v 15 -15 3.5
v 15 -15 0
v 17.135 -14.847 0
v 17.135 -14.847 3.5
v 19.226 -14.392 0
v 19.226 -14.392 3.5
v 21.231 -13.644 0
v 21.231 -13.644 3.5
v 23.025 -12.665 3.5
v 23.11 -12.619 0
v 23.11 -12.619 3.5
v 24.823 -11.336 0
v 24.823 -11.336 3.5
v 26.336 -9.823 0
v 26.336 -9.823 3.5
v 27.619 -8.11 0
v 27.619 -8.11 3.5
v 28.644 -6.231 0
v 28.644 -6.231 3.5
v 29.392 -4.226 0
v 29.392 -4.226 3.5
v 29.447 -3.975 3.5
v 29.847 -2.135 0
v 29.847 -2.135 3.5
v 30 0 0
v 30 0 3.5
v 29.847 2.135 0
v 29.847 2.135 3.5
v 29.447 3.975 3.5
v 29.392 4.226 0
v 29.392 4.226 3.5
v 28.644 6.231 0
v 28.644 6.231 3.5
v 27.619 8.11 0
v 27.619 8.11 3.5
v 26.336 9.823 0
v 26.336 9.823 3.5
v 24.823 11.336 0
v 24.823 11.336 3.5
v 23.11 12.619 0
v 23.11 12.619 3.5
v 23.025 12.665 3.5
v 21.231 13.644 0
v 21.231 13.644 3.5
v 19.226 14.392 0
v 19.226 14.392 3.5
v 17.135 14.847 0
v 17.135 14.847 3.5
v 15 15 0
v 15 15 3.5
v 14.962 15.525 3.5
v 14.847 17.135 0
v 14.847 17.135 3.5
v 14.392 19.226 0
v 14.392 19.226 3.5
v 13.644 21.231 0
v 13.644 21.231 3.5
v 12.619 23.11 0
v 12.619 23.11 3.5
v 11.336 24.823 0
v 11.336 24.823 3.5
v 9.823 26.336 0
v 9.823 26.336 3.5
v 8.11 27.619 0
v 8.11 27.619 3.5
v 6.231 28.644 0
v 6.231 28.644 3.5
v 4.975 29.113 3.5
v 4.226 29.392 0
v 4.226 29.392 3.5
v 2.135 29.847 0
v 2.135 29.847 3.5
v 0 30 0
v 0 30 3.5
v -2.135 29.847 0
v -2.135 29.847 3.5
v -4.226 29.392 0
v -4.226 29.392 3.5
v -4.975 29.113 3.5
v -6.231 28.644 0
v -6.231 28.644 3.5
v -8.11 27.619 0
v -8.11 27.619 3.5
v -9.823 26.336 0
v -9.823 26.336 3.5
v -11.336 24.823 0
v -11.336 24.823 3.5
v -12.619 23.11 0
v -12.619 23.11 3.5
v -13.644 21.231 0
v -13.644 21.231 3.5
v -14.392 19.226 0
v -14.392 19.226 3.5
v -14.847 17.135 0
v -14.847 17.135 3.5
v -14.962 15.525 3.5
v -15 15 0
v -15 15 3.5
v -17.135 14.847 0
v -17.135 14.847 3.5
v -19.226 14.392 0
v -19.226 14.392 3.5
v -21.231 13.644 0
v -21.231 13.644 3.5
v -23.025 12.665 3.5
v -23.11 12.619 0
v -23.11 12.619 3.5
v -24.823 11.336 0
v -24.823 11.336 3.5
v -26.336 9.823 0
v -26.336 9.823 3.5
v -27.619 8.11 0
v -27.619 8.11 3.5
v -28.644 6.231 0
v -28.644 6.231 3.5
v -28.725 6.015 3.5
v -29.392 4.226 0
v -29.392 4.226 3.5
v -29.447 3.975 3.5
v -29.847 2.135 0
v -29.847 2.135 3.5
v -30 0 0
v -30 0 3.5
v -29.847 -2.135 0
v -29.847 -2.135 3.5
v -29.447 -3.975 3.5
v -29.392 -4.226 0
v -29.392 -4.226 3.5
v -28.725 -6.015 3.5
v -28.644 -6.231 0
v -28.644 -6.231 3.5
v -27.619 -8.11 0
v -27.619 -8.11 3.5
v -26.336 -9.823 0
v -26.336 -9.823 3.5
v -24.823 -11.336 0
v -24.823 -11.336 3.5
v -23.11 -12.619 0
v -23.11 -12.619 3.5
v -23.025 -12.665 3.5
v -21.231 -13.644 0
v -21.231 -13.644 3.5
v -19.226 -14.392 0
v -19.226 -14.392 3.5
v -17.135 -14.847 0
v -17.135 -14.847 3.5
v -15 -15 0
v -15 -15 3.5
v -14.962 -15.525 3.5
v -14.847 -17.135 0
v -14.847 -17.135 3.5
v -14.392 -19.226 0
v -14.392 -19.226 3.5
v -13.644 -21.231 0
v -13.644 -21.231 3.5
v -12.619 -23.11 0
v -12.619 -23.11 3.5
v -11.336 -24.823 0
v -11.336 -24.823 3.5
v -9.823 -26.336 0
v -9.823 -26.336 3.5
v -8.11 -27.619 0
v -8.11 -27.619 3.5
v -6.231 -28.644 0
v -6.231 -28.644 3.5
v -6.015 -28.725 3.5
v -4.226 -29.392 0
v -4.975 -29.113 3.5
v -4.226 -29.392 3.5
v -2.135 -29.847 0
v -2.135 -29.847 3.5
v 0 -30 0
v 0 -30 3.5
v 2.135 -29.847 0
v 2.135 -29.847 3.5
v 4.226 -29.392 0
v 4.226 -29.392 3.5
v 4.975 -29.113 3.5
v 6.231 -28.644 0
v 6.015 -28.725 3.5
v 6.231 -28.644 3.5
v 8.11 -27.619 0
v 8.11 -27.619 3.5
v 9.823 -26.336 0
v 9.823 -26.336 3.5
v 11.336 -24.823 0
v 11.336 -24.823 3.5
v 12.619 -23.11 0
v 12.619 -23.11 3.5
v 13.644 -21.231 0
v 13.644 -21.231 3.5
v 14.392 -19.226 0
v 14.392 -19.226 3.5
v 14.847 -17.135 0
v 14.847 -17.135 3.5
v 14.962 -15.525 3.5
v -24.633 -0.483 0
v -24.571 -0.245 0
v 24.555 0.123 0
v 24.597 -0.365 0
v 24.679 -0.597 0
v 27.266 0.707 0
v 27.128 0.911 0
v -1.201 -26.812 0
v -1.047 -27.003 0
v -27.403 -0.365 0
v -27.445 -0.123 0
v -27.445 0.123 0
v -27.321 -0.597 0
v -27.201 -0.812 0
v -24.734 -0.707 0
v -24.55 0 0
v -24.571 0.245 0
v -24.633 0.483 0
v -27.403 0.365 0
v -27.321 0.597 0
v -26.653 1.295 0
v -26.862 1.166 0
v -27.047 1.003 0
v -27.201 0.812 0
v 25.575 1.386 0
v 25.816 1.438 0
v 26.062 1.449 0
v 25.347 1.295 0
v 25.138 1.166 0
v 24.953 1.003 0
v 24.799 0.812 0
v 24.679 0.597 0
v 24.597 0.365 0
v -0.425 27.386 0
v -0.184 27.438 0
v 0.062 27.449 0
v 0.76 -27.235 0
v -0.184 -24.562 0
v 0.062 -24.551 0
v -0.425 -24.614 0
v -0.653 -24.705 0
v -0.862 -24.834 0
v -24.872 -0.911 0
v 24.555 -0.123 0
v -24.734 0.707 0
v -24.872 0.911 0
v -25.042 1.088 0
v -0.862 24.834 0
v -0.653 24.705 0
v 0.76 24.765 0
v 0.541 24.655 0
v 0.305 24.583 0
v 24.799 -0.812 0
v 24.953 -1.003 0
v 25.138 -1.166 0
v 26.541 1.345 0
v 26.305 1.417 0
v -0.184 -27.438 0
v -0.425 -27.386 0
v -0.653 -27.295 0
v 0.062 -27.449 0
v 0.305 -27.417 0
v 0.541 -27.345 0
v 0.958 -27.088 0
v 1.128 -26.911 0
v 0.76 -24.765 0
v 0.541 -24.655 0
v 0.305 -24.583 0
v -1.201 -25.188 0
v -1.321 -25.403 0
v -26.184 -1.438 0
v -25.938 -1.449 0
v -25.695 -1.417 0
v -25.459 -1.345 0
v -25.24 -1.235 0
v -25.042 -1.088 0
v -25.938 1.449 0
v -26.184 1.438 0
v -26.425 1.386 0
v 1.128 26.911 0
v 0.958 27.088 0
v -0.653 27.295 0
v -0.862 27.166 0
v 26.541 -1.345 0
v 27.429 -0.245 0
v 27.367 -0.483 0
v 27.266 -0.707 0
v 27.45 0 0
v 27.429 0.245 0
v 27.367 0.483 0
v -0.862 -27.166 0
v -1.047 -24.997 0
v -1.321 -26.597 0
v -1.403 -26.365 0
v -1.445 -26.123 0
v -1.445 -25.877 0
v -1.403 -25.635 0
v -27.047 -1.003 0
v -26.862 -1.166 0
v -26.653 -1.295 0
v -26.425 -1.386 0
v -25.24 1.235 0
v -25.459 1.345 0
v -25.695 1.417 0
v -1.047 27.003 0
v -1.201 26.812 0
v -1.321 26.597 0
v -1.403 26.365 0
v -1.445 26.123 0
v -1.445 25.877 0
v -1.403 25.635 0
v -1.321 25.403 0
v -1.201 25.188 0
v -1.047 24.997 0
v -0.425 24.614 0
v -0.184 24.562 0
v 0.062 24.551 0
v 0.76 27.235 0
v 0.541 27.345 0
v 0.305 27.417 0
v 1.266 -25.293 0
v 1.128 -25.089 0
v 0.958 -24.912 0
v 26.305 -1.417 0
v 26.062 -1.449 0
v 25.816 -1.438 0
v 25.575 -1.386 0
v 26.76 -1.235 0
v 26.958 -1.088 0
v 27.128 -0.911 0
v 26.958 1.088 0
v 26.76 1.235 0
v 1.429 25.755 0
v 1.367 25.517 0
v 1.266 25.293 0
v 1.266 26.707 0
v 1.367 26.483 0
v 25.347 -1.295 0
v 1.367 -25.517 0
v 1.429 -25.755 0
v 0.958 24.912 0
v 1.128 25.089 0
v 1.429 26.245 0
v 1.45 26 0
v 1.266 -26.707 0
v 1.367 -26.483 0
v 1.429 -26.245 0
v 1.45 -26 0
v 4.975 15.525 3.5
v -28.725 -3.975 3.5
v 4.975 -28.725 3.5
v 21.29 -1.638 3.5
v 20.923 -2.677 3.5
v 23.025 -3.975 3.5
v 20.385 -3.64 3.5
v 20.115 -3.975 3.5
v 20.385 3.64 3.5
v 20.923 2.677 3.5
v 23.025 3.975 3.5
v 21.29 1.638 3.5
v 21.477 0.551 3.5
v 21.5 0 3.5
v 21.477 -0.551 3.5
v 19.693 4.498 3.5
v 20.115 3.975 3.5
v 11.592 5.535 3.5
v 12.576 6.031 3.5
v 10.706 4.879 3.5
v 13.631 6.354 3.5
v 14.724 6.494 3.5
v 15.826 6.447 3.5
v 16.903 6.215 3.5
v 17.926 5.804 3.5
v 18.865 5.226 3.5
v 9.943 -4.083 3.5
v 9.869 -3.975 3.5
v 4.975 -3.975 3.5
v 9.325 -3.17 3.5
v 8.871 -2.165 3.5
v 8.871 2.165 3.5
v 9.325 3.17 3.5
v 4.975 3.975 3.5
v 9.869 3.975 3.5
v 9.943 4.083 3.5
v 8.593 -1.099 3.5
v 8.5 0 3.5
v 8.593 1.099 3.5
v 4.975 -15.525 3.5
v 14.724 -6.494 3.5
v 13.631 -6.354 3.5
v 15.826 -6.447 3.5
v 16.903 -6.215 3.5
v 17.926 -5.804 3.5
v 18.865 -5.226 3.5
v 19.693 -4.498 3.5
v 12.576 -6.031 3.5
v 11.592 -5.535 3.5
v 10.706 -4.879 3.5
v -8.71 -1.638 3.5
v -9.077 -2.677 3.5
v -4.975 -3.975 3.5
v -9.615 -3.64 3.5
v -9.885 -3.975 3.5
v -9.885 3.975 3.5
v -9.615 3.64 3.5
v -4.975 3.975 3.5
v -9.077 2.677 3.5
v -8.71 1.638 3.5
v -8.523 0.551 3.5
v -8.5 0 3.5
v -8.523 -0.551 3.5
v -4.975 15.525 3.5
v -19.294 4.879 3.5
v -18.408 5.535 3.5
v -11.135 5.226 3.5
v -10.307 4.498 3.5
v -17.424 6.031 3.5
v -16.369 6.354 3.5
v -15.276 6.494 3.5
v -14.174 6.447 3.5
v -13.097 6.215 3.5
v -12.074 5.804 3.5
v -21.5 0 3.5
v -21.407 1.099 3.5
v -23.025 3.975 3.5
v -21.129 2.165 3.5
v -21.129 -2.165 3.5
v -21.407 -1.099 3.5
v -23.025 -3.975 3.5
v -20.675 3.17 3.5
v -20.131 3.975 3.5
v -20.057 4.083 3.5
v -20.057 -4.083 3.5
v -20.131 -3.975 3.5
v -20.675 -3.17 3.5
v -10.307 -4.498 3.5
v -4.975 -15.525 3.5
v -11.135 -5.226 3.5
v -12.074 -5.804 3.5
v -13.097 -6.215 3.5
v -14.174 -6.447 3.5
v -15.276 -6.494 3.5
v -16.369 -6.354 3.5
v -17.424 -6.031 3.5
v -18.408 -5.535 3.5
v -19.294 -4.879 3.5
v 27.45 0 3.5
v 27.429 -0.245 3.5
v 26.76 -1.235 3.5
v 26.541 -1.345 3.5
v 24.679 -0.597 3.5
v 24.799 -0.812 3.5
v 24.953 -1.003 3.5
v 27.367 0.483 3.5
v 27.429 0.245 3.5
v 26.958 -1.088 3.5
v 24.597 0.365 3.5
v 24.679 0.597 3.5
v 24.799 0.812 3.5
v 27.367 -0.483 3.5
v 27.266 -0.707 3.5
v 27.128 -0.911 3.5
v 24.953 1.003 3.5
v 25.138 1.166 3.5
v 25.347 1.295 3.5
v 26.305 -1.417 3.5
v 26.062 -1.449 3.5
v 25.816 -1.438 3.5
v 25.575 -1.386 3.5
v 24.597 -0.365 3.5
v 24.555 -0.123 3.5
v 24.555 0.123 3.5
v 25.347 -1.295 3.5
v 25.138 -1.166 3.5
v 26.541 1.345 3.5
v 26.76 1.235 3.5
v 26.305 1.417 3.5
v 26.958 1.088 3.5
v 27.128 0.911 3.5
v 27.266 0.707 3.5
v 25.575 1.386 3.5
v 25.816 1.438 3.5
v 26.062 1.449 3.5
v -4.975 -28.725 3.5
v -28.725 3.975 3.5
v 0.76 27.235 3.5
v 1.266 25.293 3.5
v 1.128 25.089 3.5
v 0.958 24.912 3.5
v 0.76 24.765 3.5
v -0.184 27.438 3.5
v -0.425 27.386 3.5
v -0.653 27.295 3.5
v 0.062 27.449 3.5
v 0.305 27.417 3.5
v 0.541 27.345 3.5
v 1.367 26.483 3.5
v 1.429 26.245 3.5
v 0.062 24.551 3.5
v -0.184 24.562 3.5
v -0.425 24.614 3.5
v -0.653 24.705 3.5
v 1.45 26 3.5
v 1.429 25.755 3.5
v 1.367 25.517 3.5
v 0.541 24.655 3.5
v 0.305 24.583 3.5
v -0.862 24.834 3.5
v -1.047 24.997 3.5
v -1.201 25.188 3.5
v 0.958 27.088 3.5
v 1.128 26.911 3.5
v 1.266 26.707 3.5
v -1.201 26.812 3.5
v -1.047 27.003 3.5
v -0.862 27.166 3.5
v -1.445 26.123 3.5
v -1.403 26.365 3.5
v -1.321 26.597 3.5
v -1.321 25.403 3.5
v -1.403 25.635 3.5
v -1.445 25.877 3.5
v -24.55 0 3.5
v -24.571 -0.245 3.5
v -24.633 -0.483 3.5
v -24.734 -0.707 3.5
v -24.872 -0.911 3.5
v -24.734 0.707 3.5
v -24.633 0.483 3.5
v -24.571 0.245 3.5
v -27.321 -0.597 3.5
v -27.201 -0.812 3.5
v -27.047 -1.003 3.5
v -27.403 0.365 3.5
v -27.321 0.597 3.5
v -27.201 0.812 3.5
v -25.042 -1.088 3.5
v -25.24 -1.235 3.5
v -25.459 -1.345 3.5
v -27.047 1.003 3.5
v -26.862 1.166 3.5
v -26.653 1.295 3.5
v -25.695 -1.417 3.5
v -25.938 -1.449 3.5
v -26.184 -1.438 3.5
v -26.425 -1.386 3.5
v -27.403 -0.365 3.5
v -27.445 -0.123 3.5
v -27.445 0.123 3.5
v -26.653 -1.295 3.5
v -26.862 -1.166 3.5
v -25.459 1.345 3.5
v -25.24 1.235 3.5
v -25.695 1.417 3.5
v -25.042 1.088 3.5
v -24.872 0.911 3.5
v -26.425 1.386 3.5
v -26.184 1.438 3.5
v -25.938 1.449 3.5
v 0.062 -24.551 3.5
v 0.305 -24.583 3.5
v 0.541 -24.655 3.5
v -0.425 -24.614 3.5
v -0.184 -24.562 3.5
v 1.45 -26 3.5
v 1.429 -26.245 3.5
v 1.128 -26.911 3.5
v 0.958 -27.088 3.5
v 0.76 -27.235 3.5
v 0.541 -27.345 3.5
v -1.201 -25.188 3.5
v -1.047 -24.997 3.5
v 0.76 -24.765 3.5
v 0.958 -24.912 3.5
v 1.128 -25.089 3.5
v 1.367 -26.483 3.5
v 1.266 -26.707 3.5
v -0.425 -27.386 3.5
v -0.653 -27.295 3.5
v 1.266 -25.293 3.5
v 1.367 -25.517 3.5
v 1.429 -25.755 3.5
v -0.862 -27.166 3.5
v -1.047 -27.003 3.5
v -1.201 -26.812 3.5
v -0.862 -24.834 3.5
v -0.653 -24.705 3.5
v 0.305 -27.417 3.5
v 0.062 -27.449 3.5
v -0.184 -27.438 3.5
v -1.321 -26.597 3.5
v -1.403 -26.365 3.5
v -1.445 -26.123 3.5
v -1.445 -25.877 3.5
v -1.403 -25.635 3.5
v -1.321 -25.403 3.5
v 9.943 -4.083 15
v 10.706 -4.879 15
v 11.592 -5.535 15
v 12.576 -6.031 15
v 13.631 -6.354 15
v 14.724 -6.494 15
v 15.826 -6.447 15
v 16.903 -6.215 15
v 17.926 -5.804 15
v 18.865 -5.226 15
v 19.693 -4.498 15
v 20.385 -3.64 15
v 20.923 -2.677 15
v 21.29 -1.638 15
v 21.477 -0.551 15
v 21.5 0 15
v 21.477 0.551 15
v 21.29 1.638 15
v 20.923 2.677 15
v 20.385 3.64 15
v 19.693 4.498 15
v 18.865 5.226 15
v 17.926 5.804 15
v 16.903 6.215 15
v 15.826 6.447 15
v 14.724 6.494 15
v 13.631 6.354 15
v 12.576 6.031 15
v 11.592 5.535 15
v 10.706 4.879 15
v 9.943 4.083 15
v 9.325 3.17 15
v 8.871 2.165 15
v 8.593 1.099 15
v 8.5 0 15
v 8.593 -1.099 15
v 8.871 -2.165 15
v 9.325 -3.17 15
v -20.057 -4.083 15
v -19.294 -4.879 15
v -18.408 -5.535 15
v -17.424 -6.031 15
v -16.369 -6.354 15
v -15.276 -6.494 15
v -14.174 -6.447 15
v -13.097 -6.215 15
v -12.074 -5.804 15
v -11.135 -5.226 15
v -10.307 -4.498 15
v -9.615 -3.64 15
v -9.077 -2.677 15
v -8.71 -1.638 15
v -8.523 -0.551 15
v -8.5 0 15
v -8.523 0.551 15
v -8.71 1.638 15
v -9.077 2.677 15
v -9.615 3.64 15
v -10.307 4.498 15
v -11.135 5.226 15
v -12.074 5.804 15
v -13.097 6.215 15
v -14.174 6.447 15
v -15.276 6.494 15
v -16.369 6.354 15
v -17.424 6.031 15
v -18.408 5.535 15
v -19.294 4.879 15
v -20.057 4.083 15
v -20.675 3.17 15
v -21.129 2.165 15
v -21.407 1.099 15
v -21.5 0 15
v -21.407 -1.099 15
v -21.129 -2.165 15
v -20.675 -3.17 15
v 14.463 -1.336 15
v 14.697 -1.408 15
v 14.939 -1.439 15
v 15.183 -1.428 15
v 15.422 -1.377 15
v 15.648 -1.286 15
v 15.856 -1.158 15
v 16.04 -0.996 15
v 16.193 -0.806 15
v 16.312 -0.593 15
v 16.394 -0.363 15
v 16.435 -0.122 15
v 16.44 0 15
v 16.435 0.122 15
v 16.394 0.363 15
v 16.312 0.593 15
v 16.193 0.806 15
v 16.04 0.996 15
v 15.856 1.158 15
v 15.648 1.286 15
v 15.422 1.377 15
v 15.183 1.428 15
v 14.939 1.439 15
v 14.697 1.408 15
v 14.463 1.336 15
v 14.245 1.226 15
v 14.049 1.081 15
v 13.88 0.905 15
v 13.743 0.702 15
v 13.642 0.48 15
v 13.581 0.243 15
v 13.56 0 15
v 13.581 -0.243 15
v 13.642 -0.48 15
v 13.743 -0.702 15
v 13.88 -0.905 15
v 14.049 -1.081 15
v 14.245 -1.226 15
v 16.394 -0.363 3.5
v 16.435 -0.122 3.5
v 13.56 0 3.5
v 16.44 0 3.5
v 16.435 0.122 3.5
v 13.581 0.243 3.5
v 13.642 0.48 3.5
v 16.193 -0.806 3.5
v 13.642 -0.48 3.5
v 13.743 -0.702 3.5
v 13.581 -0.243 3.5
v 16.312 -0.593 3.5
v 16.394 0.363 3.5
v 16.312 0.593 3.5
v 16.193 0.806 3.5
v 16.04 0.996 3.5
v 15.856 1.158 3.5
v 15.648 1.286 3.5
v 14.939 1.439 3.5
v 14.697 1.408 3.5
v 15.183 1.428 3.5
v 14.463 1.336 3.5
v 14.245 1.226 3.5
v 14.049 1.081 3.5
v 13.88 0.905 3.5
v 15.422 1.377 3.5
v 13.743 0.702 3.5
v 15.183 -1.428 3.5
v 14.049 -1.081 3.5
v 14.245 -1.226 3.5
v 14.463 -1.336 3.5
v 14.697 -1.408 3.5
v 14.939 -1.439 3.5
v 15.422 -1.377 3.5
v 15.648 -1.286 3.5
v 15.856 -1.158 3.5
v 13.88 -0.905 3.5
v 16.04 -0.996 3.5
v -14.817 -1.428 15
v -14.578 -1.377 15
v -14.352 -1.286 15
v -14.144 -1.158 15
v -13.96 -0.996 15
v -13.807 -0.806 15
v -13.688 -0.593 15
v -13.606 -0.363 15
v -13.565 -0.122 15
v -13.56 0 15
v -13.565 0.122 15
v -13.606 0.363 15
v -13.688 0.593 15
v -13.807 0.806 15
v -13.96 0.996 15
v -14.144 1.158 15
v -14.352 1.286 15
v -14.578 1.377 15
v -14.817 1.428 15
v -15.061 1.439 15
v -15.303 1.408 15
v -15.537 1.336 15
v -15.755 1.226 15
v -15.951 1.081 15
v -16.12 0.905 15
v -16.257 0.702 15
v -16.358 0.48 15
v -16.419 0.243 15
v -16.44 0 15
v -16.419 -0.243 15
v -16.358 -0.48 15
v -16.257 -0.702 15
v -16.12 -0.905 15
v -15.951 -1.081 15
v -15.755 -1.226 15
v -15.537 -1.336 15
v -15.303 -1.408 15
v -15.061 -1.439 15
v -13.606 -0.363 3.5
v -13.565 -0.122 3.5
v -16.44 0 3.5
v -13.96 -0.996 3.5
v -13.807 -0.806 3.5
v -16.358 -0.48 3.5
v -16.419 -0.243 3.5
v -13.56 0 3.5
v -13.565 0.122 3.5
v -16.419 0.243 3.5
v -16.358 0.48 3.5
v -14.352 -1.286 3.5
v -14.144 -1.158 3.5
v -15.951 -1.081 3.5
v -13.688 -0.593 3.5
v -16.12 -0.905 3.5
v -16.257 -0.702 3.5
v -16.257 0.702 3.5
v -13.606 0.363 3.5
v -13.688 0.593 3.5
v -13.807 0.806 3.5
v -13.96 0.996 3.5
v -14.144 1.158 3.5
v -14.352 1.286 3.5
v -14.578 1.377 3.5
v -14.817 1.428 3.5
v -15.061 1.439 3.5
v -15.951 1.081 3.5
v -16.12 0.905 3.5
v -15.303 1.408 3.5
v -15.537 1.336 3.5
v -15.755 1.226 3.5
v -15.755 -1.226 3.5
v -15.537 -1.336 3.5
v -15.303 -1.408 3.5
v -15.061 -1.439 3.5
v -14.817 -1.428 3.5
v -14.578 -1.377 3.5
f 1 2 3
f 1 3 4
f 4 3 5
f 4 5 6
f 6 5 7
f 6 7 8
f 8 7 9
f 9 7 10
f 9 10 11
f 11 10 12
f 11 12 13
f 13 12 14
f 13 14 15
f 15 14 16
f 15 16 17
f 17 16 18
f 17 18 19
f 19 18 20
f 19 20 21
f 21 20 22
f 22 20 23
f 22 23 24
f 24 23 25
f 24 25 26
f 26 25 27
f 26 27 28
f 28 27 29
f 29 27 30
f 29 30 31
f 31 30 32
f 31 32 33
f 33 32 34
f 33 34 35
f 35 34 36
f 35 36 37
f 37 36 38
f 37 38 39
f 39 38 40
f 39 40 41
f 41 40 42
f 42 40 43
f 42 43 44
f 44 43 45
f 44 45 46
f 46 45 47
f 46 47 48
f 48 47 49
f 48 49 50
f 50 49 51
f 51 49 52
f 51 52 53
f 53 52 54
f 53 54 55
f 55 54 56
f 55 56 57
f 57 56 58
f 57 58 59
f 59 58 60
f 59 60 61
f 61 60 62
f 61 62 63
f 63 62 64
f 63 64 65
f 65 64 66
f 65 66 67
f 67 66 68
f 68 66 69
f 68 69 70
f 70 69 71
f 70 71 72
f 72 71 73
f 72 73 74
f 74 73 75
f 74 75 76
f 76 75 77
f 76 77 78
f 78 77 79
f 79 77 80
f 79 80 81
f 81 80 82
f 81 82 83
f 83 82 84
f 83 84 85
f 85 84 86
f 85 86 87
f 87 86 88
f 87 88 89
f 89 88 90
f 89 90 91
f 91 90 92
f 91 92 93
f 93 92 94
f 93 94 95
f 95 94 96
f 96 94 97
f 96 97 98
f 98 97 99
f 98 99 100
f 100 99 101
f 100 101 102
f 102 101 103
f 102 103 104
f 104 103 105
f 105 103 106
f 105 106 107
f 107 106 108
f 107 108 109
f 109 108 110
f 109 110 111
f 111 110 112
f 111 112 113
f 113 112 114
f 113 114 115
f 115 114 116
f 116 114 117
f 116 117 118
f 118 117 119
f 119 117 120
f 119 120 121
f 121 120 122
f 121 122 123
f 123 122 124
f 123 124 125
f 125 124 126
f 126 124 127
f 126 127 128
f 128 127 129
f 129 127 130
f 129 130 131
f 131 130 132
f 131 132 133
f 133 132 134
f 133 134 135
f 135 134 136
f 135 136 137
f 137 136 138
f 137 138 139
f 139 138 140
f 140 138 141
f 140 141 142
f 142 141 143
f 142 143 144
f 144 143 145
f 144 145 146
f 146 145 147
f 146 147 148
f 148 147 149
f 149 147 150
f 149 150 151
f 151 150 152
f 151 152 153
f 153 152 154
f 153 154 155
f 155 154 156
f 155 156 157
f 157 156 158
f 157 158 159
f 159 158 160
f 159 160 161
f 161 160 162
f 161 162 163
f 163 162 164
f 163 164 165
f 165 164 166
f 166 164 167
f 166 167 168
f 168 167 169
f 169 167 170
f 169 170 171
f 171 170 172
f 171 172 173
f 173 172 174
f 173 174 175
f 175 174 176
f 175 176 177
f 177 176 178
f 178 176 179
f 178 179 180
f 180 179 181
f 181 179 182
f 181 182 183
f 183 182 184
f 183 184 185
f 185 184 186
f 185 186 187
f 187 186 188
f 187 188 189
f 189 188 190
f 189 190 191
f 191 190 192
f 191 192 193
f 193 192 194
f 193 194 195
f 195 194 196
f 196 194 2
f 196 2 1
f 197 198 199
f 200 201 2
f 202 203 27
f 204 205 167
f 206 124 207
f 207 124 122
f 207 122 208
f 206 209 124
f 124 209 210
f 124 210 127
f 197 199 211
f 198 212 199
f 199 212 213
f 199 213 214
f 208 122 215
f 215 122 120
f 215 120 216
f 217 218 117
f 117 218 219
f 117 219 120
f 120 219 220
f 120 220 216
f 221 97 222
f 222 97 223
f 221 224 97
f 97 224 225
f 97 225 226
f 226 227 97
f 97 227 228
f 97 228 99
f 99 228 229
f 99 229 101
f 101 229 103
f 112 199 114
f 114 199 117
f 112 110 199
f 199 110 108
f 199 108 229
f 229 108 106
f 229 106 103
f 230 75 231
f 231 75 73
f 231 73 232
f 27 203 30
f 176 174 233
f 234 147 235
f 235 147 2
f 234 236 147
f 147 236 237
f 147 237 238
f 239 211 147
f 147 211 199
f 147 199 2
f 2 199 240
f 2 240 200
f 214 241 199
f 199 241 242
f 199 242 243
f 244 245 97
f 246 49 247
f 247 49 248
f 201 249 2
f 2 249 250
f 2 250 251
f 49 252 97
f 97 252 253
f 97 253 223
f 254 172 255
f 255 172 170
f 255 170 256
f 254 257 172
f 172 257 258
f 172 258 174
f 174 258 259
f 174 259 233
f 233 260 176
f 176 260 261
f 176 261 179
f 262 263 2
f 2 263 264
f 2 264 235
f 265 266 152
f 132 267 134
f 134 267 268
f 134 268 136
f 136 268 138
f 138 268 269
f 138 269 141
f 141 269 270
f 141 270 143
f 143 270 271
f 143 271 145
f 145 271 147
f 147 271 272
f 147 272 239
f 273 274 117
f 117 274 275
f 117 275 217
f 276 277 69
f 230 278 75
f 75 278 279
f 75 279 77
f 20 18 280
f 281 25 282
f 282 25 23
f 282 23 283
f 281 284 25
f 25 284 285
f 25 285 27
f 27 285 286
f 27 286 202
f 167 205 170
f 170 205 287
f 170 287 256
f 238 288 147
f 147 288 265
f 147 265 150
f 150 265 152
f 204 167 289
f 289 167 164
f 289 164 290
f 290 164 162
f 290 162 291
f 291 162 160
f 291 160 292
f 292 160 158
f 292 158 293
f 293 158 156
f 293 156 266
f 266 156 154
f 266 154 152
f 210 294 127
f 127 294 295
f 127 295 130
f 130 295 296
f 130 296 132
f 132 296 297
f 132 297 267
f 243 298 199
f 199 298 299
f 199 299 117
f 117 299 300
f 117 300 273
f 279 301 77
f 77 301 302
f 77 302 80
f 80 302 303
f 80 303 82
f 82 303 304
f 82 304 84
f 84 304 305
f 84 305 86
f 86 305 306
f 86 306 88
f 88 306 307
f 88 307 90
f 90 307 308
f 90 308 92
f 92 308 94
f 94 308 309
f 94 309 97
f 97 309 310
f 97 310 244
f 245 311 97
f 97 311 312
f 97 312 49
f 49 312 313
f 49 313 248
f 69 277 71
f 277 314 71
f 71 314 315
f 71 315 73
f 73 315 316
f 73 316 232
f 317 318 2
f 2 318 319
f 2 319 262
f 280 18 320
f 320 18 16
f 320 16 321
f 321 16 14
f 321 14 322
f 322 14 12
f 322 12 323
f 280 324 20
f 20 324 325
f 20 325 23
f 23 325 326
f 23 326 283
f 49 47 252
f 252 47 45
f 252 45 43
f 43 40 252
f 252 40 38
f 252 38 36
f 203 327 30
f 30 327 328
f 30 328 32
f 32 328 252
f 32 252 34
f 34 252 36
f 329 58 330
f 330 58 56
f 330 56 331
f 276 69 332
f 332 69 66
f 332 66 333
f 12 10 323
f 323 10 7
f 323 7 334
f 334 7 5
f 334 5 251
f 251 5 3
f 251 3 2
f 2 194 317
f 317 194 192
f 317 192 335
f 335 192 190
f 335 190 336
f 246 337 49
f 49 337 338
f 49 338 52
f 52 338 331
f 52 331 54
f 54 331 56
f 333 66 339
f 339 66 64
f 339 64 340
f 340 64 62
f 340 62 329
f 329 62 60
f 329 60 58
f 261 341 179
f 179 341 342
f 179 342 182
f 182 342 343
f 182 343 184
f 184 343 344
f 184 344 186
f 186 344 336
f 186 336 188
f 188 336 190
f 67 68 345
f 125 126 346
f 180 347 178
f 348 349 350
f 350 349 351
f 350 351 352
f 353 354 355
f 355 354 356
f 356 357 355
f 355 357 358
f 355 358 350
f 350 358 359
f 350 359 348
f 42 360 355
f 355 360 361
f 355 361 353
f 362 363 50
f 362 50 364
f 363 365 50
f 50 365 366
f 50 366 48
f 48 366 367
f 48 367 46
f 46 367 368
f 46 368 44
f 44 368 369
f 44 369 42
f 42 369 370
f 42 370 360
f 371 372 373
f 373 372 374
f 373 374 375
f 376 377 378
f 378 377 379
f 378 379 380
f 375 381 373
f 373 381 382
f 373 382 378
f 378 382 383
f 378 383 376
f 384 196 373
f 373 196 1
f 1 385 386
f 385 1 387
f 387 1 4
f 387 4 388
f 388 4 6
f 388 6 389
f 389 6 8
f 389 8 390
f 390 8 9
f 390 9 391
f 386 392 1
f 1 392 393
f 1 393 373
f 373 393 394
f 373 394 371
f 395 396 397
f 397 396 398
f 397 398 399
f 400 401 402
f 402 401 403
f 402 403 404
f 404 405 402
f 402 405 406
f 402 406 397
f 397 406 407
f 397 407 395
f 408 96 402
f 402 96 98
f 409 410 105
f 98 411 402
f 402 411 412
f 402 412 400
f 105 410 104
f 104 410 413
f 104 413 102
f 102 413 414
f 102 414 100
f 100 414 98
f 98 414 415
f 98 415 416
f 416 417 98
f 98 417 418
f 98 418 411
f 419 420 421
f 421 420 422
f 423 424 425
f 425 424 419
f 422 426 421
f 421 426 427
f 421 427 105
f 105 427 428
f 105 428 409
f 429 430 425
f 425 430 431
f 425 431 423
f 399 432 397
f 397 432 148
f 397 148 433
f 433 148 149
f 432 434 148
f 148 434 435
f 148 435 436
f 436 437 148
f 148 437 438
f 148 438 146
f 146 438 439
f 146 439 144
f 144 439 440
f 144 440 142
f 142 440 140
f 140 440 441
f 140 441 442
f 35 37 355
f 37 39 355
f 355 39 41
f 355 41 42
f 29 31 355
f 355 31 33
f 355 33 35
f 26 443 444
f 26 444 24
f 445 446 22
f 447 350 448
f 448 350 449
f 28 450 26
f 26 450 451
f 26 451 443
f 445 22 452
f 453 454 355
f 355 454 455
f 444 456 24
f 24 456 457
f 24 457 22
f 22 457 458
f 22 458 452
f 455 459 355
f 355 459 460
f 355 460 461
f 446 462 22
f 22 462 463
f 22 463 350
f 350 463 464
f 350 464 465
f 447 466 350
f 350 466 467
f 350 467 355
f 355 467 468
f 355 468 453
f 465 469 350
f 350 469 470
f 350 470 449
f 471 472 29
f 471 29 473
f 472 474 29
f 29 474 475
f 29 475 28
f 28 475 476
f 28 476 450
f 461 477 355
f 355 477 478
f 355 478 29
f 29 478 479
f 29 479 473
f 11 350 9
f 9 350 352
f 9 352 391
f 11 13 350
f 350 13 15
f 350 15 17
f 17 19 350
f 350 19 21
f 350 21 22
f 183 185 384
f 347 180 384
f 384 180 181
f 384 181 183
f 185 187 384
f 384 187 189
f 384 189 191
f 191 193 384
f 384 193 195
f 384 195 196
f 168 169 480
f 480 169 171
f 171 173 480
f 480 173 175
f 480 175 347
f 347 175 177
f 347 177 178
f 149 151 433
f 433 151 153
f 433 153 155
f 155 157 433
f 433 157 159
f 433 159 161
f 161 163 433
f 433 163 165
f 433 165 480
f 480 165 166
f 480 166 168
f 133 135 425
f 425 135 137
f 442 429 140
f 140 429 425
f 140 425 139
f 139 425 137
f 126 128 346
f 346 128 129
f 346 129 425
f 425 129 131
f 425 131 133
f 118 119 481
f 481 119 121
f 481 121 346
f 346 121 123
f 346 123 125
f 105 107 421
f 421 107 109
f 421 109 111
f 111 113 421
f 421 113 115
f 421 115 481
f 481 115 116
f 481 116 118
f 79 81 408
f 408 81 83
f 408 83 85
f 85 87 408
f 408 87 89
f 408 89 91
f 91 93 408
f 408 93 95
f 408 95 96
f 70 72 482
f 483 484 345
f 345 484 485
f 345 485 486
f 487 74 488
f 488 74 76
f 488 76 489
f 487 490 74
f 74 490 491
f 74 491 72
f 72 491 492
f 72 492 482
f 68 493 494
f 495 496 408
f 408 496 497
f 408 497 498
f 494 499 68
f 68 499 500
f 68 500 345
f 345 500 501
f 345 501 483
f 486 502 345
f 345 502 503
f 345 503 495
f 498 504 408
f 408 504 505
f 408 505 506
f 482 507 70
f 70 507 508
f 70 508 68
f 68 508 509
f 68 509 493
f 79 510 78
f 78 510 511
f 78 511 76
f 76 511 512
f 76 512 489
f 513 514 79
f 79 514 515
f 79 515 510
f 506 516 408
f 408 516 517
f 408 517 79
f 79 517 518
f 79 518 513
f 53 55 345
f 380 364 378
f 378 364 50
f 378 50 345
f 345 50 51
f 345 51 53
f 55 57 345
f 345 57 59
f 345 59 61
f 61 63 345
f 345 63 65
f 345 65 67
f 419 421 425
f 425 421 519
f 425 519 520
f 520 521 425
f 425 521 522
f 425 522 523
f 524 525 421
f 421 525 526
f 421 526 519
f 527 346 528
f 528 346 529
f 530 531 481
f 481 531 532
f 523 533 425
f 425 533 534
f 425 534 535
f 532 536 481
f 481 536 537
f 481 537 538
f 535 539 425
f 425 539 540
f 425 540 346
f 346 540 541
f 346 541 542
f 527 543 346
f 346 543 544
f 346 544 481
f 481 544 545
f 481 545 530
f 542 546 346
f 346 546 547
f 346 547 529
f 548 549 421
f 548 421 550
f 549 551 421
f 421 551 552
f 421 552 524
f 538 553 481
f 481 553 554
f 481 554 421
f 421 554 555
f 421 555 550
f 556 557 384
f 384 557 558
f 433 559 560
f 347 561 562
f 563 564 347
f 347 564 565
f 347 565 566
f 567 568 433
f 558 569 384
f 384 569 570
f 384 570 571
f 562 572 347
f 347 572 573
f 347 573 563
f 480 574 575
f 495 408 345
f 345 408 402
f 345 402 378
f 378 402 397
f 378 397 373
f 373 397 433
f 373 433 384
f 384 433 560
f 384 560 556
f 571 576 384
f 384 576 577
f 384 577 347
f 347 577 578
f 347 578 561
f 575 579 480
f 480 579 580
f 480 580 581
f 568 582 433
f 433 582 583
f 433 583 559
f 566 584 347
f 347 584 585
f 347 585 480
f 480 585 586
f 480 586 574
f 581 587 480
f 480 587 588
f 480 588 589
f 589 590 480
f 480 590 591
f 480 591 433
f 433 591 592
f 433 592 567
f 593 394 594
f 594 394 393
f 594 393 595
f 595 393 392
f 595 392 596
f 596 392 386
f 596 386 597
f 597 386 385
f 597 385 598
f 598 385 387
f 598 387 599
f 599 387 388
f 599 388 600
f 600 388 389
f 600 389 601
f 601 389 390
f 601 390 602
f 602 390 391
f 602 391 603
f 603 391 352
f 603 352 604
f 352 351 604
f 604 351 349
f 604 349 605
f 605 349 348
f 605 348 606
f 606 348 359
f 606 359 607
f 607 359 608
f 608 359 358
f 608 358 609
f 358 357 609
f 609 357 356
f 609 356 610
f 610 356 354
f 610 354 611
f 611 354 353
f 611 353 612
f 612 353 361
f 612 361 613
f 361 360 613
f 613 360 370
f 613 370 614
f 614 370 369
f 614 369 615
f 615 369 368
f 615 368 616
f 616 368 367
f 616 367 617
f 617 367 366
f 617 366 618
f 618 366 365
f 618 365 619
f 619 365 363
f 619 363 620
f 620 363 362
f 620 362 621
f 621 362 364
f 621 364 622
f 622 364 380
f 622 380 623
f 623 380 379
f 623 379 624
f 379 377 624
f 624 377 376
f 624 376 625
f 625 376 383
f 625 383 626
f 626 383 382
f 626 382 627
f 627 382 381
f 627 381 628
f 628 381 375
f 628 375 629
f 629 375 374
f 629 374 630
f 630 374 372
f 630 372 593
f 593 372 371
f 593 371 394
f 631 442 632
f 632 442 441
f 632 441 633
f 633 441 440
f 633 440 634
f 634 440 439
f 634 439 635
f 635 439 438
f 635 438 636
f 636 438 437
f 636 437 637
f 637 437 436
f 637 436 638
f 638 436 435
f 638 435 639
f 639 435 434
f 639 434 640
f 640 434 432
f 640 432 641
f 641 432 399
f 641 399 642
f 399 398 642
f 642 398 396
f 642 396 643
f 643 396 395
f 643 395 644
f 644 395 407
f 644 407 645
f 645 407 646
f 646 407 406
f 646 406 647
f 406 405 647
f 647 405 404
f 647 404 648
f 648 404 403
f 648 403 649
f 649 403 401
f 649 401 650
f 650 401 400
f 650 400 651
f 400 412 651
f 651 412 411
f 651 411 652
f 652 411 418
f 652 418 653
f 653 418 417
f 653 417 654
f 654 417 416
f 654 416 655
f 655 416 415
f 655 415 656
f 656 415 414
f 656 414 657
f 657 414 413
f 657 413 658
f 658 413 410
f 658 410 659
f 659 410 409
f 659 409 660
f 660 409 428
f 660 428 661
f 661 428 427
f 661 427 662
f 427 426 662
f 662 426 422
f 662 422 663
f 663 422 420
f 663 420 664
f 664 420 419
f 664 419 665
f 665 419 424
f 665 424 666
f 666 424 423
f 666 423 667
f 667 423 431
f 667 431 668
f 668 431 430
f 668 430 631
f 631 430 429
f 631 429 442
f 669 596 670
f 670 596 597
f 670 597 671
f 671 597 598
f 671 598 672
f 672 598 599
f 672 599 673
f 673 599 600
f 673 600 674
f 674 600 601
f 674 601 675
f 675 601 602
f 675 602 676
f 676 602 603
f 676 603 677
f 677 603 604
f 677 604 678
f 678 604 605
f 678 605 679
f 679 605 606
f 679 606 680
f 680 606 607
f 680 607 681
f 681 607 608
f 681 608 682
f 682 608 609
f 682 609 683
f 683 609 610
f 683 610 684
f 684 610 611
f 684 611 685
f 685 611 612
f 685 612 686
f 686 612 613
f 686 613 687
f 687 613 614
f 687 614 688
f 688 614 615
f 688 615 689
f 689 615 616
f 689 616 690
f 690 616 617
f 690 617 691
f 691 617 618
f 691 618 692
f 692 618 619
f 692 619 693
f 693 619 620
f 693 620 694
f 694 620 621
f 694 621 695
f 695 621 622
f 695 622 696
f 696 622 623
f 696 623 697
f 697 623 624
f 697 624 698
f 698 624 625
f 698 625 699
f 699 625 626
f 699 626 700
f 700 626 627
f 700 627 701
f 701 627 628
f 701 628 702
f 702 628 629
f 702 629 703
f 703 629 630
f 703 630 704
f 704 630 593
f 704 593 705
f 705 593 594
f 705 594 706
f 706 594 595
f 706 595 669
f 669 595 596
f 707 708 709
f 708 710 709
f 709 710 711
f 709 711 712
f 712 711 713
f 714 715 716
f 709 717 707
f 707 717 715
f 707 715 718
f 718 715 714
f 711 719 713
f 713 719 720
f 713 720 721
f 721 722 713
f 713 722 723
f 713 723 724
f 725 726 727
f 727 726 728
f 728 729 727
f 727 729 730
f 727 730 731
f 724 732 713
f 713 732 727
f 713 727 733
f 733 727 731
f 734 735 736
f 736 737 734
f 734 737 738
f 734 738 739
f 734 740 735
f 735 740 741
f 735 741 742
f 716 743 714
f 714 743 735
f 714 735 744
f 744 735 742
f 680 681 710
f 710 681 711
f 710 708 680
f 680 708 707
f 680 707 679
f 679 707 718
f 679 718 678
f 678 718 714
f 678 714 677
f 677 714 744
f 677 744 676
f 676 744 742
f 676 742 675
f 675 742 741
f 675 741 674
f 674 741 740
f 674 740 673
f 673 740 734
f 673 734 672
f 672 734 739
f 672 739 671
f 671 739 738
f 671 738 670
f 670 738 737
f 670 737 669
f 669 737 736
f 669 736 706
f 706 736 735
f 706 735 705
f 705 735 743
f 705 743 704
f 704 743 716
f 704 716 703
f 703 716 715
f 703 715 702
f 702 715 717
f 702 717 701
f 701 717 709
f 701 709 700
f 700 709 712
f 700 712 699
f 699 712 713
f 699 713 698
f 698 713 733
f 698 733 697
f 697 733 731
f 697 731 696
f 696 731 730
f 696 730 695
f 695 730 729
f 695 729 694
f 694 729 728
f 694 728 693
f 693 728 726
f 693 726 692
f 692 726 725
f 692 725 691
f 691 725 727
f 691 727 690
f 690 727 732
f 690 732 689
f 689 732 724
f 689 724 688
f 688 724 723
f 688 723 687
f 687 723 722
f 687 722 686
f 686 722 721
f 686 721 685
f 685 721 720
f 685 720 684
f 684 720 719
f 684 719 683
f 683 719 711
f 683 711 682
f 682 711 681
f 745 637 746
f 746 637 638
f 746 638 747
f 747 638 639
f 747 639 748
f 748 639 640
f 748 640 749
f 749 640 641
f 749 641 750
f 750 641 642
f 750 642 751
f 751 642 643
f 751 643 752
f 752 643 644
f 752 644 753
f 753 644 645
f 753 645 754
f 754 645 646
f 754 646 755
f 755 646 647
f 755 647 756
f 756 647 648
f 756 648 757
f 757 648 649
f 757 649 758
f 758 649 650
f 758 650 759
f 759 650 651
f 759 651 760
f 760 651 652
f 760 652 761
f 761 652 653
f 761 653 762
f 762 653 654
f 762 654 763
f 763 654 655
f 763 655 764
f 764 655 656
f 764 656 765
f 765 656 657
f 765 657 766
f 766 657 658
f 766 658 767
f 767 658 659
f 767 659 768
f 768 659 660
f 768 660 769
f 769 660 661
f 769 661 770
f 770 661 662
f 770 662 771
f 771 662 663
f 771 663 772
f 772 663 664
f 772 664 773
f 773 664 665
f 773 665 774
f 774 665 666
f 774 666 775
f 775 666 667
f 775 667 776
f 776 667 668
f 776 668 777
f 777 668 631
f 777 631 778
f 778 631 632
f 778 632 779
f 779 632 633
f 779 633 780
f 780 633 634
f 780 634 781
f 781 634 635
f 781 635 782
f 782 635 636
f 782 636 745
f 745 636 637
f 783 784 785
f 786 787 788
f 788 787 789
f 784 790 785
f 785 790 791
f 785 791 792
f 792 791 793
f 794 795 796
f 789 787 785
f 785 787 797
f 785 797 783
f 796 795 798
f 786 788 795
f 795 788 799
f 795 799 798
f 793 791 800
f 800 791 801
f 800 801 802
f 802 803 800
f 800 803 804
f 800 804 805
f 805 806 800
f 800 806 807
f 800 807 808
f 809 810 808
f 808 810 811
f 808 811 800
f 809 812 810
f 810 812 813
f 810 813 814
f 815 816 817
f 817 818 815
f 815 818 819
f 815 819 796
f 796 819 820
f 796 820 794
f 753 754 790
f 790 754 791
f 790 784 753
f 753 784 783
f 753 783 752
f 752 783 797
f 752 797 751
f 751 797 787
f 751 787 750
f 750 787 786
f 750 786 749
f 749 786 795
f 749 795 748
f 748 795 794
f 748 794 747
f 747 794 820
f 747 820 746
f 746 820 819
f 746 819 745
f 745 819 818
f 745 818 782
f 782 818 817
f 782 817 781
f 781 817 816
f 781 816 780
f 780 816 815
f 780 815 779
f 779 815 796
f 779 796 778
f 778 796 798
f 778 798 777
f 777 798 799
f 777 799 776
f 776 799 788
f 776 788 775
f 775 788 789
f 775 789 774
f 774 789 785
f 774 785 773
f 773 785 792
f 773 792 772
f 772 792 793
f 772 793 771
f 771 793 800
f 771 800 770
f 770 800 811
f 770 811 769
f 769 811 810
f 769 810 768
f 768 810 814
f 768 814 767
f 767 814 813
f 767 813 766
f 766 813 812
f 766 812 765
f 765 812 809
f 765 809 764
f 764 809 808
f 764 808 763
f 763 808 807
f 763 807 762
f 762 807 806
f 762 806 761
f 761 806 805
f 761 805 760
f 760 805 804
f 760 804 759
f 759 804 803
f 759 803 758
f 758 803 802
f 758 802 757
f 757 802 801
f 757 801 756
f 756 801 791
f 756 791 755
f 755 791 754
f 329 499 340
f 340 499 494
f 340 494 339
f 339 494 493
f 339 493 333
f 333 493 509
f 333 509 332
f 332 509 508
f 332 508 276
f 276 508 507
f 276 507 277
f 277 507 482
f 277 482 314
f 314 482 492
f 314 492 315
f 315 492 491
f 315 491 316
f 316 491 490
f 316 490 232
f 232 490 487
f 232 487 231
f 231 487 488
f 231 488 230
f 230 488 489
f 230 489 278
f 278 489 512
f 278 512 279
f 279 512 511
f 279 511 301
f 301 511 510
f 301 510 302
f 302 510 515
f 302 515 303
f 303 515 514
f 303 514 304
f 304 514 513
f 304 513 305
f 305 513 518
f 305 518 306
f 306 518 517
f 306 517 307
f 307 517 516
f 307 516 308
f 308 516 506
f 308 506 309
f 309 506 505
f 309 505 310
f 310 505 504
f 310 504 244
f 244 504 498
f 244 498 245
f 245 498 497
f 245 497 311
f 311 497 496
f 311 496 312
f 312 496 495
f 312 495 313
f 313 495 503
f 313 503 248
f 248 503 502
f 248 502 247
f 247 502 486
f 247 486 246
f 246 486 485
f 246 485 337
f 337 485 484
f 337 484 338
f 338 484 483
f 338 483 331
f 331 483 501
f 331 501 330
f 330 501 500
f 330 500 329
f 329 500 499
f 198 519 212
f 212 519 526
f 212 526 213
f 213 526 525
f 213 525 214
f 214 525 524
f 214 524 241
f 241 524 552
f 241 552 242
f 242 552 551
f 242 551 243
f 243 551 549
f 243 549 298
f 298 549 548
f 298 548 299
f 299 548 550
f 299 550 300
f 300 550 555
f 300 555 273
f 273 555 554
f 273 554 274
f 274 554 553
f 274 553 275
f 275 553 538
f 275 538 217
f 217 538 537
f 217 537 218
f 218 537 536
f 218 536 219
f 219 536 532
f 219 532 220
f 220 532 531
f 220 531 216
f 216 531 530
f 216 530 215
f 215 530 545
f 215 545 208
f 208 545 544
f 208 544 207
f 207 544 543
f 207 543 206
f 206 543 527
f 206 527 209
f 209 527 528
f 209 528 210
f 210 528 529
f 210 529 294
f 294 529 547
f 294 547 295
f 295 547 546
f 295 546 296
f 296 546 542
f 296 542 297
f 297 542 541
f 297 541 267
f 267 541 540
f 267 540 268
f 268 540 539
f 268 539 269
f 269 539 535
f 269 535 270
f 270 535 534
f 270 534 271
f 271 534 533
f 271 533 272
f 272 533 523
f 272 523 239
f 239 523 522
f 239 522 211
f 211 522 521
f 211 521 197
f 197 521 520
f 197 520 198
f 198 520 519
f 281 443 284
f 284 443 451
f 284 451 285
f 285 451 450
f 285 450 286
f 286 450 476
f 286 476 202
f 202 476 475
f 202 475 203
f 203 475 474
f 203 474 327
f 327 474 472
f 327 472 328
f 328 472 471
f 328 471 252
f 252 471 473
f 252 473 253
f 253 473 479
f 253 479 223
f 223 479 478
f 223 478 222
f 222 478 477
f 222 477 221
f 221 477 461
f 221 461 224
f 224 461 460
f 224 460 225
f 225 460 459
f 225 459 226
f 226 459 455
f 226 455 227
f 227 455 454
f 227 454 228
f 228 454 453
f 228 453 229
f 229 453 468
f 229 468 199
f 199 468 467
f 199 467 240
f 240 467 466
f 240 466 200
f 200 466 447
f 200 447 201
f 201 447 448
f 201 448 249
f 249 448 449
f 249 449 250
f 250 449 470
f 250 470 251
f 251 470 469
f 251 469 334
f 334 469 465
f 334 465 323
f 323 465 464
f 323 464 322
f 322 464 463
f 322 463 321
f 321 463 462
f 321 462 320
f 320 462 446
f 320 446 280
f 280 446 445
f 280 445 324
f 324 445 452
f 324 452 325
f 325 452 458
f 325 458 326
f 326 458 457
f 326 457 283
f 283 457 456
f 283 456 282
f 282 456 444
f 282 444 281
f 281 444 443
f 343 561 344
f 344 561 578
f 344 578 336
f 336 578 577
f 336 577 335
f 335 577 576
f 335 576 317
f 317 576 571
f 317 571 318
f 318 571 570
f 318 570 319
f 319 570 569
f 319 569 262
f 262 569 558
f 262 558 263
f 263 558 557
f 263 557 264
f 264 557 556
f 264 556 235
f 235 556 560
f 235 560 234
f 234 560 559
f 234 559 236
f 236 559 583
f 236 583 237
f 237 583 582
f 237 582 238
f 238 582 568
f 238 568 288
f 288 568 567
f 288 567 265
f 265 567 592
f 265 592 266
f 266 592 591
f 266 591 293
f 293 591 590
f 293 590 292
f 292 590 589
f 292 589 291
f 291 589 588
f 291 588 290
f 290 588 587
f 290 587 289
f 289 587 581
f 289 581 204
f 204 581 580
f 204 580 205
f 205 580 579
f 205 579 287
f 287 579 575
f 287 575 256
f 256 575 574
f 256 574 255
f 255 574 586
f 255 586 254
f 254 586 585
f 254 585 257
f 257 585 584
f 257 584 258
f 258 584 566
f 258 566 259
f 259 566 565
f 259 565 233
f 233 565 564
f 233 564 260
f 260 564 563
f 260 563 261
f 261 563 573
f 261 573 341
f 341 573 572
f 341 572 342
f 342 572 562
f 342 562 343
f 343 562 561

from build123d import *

# Parameters (mm, degrees)
EXTRUDE_9_DEPTH       = 2
SKETCH_5_R            = 6.5
SKETCH_5_R_2          = 1.44
EXTRUDE_11_DEPTH      = 9.7
EXTRUDE_12_DEPTH      = 3.5
SKETCH_5_4_R          = 6.5
SKETCH_5_4_R_2        = 1.44
EXTRUDE_13_DEPTH      = 10
EXTRUDE_17_DEPTH      = 10
EXTRUDE_17_DEPTH_BACK = 2
SKETCH_5_8_R          = 6.5
SKETCH_5_8_R_2        = 1.44
SKETCH_5_11_R         = 6.5
SKETCH_5_11_R_2       = 1.44
EXTRUDE_18_DEPTH      = 13
EXTRUDE_19_DEPTH      = 3
SKETCH_6_R            = 1.45
CUT_EXTRUDE_1_DEPTH   = 3.5


with BuildPart() as part:
    # 草图2 → 凸台-拉伸9 (new body)
    with BuildSketch(Plane.XY):
        with BuildLine():
            ThreePointArc((15, 15), (0, 30), (-15, 15))
            ThreePointArc((-15, 15), (-30, 0), (-15, -15))
            ThreePointArc((-15, -15), (0, -30), (15, -15))
            ThreePointArc((15, -15), (30, 0), (15, 15))
        make_face()
    extrude(amount=EXTRUDE_9_DEPTH)

    # 草图5 → 凸台-拉伸11 (add)
    # profile 1 of 2: a face of its own
    with BuildSketch(Plane.XY.offset(2)):
        with Locations((-15, 0)):
            Circle(SKETCH_5_R)
        with Locations((-15, 0)):
            Circle(SKETCH_5_R_2, mode=Mode.SUBTRACT)
    # profile 2 of 2: a face of its own
    with BuildSketch(Plane.XY.offset(2)):
        with Locations((15, 0)):
            Circle(SKETCH_5_R)
        with Locations((15, 0)):
            Circle(SKETCH_5_R_2, mode=Mode.SUBTRACT)
    extrude(amount=EXTRUDE_11_DEPTH)

    # 草图2<17> → 凸台-拉伸12 (add)
    with BuildSketch(Plane.XY):
        with BuildLine():
            ThreePointArc((15, 15), (0, 30), (-15, 15))
            ThreePointArc((-15, 15), (-30, 0), (-15, -15))
            ThreePointArc((-15, -15), (0, -30), (15, -15))
            ThreePointArc((15, -15), (30, 0), (15, 15))
        make_face()
    extrude(amount=EXTRUDE_12_DEPTH)

    # 草图5<4> → 凸台-拉伸13 (add)
    # profile 1 of 2: a face of its own
    with BuildSketch(Plane.XY.offset(2)):
        with Locations((-15, 0)):
            Circle(SKETCH_5_4_R)
        with Locations((-15, 0)):
            Circle(SKETCH_5_4_R_2, mode=Mode.SUBTRACT)
    # profile 2 of 2: a face of its own
    with BuildSketch(Plane.XY.offset(2)):
        with Locations((15, 0)):
            Circle(SKETCH_5_4_R)
        with Locations((15, 0)):
            Circle(SKETCH_5_4_R_2, mode=Mode.SUBTRACT)
    extrude(amount=EXTRUDE_13_DEPTH)

    # 草图5<8> → 凸台-拉伸17 (add, two sides: drawn at the far end of the back side and taken through both)
    # profile 1 of 2: a face of its own
    with BuildSketch(Plane.XY.offset(2).offset(-EXTRUDE_17_DEPTH_BACK)):
        with Locations((-15, 0)):
            Circle(SKETCH_5_8_R)
        with Locations((-15, 0)):
            Circle(SKETCH_5_8_R_2, mode=Mode.SUBTRACT)
    # profile 2 of 2: a face of its own
    with BuildSketch(Plane.XY.offset(2).offset(-EXTRUDE_17_DEPTH_BACK)):
        with Locations((15, 0)):
            Circle(SKETCH_5_8_R)
        with Locations((15, 0)):
            Circle(SKETCH_5_8_R_2, mode=Mode.SUBTRACT)
    extrude(amount=EXTRUDE_17_DEPTH + EXTRUDE_17_DEPTH_BACK)

    # 草图5<11> → 凸台-拉伸18 (add)
    # profile 1 of 2: a face of its own
    with BuildSketch(Plane.XY.offset(2)):
        with Locations((-15, 0)):
            Circle(SKETCH_5_11_R)
        with Locations((-15, 0)):
            Circle(SKETCH_5_11_R_2, mode=Mode.SUBTRACT)
    # profile 2 of 2: a face of its own
    with BuildSketch(Plane.XY.offset(2)):
        with Locations((15, 0)):
            Circle(SKETCH_5_11_R)
        with Locations((15, 0)):
            Circle(SKETCH_5_11_R_2, mode=Mode.SUBTRACT)
    extrude(amount=EXTRUDE_18_DEPTH)

    # 草图2<18> → 凸台-拉伸19 (add)
    with BuildSketch(Plane.XY):
        with BuildLine():
            ThreePointArc((15, 15), (0, 30), (-15, 15))
            ThreePointArc((-15, 15), (-30, 0), (-15, -15))
            ThreePointArc((-15, -15), (0, -30), (15, -15))
            ThreePointArc((15, -15), (30, 0), (15, 15))
        make_face()
    extrude(amount=EXTRUDE_19_DEPTH)

    # 草图6 → 切除-拉伸1 (cut)
    with BuildSketch(Plane.XY.offset(3.5)):
        with Locations((0, 26)):
            Circle(SKETCH_6_R)
        with Locations((-26, 0)):
            Circle(SKETCH_6_R)
        with Locations((26, 0)):
            Circle(SKETCH_6_R)
        with Locations((0, -26)):
            Circle(SKETCH_6_R)
    extrude(amount=-CUT_EXTRUDE_1_DEPTH, mode=Mode.SUBTRACT)


solid = part.part
